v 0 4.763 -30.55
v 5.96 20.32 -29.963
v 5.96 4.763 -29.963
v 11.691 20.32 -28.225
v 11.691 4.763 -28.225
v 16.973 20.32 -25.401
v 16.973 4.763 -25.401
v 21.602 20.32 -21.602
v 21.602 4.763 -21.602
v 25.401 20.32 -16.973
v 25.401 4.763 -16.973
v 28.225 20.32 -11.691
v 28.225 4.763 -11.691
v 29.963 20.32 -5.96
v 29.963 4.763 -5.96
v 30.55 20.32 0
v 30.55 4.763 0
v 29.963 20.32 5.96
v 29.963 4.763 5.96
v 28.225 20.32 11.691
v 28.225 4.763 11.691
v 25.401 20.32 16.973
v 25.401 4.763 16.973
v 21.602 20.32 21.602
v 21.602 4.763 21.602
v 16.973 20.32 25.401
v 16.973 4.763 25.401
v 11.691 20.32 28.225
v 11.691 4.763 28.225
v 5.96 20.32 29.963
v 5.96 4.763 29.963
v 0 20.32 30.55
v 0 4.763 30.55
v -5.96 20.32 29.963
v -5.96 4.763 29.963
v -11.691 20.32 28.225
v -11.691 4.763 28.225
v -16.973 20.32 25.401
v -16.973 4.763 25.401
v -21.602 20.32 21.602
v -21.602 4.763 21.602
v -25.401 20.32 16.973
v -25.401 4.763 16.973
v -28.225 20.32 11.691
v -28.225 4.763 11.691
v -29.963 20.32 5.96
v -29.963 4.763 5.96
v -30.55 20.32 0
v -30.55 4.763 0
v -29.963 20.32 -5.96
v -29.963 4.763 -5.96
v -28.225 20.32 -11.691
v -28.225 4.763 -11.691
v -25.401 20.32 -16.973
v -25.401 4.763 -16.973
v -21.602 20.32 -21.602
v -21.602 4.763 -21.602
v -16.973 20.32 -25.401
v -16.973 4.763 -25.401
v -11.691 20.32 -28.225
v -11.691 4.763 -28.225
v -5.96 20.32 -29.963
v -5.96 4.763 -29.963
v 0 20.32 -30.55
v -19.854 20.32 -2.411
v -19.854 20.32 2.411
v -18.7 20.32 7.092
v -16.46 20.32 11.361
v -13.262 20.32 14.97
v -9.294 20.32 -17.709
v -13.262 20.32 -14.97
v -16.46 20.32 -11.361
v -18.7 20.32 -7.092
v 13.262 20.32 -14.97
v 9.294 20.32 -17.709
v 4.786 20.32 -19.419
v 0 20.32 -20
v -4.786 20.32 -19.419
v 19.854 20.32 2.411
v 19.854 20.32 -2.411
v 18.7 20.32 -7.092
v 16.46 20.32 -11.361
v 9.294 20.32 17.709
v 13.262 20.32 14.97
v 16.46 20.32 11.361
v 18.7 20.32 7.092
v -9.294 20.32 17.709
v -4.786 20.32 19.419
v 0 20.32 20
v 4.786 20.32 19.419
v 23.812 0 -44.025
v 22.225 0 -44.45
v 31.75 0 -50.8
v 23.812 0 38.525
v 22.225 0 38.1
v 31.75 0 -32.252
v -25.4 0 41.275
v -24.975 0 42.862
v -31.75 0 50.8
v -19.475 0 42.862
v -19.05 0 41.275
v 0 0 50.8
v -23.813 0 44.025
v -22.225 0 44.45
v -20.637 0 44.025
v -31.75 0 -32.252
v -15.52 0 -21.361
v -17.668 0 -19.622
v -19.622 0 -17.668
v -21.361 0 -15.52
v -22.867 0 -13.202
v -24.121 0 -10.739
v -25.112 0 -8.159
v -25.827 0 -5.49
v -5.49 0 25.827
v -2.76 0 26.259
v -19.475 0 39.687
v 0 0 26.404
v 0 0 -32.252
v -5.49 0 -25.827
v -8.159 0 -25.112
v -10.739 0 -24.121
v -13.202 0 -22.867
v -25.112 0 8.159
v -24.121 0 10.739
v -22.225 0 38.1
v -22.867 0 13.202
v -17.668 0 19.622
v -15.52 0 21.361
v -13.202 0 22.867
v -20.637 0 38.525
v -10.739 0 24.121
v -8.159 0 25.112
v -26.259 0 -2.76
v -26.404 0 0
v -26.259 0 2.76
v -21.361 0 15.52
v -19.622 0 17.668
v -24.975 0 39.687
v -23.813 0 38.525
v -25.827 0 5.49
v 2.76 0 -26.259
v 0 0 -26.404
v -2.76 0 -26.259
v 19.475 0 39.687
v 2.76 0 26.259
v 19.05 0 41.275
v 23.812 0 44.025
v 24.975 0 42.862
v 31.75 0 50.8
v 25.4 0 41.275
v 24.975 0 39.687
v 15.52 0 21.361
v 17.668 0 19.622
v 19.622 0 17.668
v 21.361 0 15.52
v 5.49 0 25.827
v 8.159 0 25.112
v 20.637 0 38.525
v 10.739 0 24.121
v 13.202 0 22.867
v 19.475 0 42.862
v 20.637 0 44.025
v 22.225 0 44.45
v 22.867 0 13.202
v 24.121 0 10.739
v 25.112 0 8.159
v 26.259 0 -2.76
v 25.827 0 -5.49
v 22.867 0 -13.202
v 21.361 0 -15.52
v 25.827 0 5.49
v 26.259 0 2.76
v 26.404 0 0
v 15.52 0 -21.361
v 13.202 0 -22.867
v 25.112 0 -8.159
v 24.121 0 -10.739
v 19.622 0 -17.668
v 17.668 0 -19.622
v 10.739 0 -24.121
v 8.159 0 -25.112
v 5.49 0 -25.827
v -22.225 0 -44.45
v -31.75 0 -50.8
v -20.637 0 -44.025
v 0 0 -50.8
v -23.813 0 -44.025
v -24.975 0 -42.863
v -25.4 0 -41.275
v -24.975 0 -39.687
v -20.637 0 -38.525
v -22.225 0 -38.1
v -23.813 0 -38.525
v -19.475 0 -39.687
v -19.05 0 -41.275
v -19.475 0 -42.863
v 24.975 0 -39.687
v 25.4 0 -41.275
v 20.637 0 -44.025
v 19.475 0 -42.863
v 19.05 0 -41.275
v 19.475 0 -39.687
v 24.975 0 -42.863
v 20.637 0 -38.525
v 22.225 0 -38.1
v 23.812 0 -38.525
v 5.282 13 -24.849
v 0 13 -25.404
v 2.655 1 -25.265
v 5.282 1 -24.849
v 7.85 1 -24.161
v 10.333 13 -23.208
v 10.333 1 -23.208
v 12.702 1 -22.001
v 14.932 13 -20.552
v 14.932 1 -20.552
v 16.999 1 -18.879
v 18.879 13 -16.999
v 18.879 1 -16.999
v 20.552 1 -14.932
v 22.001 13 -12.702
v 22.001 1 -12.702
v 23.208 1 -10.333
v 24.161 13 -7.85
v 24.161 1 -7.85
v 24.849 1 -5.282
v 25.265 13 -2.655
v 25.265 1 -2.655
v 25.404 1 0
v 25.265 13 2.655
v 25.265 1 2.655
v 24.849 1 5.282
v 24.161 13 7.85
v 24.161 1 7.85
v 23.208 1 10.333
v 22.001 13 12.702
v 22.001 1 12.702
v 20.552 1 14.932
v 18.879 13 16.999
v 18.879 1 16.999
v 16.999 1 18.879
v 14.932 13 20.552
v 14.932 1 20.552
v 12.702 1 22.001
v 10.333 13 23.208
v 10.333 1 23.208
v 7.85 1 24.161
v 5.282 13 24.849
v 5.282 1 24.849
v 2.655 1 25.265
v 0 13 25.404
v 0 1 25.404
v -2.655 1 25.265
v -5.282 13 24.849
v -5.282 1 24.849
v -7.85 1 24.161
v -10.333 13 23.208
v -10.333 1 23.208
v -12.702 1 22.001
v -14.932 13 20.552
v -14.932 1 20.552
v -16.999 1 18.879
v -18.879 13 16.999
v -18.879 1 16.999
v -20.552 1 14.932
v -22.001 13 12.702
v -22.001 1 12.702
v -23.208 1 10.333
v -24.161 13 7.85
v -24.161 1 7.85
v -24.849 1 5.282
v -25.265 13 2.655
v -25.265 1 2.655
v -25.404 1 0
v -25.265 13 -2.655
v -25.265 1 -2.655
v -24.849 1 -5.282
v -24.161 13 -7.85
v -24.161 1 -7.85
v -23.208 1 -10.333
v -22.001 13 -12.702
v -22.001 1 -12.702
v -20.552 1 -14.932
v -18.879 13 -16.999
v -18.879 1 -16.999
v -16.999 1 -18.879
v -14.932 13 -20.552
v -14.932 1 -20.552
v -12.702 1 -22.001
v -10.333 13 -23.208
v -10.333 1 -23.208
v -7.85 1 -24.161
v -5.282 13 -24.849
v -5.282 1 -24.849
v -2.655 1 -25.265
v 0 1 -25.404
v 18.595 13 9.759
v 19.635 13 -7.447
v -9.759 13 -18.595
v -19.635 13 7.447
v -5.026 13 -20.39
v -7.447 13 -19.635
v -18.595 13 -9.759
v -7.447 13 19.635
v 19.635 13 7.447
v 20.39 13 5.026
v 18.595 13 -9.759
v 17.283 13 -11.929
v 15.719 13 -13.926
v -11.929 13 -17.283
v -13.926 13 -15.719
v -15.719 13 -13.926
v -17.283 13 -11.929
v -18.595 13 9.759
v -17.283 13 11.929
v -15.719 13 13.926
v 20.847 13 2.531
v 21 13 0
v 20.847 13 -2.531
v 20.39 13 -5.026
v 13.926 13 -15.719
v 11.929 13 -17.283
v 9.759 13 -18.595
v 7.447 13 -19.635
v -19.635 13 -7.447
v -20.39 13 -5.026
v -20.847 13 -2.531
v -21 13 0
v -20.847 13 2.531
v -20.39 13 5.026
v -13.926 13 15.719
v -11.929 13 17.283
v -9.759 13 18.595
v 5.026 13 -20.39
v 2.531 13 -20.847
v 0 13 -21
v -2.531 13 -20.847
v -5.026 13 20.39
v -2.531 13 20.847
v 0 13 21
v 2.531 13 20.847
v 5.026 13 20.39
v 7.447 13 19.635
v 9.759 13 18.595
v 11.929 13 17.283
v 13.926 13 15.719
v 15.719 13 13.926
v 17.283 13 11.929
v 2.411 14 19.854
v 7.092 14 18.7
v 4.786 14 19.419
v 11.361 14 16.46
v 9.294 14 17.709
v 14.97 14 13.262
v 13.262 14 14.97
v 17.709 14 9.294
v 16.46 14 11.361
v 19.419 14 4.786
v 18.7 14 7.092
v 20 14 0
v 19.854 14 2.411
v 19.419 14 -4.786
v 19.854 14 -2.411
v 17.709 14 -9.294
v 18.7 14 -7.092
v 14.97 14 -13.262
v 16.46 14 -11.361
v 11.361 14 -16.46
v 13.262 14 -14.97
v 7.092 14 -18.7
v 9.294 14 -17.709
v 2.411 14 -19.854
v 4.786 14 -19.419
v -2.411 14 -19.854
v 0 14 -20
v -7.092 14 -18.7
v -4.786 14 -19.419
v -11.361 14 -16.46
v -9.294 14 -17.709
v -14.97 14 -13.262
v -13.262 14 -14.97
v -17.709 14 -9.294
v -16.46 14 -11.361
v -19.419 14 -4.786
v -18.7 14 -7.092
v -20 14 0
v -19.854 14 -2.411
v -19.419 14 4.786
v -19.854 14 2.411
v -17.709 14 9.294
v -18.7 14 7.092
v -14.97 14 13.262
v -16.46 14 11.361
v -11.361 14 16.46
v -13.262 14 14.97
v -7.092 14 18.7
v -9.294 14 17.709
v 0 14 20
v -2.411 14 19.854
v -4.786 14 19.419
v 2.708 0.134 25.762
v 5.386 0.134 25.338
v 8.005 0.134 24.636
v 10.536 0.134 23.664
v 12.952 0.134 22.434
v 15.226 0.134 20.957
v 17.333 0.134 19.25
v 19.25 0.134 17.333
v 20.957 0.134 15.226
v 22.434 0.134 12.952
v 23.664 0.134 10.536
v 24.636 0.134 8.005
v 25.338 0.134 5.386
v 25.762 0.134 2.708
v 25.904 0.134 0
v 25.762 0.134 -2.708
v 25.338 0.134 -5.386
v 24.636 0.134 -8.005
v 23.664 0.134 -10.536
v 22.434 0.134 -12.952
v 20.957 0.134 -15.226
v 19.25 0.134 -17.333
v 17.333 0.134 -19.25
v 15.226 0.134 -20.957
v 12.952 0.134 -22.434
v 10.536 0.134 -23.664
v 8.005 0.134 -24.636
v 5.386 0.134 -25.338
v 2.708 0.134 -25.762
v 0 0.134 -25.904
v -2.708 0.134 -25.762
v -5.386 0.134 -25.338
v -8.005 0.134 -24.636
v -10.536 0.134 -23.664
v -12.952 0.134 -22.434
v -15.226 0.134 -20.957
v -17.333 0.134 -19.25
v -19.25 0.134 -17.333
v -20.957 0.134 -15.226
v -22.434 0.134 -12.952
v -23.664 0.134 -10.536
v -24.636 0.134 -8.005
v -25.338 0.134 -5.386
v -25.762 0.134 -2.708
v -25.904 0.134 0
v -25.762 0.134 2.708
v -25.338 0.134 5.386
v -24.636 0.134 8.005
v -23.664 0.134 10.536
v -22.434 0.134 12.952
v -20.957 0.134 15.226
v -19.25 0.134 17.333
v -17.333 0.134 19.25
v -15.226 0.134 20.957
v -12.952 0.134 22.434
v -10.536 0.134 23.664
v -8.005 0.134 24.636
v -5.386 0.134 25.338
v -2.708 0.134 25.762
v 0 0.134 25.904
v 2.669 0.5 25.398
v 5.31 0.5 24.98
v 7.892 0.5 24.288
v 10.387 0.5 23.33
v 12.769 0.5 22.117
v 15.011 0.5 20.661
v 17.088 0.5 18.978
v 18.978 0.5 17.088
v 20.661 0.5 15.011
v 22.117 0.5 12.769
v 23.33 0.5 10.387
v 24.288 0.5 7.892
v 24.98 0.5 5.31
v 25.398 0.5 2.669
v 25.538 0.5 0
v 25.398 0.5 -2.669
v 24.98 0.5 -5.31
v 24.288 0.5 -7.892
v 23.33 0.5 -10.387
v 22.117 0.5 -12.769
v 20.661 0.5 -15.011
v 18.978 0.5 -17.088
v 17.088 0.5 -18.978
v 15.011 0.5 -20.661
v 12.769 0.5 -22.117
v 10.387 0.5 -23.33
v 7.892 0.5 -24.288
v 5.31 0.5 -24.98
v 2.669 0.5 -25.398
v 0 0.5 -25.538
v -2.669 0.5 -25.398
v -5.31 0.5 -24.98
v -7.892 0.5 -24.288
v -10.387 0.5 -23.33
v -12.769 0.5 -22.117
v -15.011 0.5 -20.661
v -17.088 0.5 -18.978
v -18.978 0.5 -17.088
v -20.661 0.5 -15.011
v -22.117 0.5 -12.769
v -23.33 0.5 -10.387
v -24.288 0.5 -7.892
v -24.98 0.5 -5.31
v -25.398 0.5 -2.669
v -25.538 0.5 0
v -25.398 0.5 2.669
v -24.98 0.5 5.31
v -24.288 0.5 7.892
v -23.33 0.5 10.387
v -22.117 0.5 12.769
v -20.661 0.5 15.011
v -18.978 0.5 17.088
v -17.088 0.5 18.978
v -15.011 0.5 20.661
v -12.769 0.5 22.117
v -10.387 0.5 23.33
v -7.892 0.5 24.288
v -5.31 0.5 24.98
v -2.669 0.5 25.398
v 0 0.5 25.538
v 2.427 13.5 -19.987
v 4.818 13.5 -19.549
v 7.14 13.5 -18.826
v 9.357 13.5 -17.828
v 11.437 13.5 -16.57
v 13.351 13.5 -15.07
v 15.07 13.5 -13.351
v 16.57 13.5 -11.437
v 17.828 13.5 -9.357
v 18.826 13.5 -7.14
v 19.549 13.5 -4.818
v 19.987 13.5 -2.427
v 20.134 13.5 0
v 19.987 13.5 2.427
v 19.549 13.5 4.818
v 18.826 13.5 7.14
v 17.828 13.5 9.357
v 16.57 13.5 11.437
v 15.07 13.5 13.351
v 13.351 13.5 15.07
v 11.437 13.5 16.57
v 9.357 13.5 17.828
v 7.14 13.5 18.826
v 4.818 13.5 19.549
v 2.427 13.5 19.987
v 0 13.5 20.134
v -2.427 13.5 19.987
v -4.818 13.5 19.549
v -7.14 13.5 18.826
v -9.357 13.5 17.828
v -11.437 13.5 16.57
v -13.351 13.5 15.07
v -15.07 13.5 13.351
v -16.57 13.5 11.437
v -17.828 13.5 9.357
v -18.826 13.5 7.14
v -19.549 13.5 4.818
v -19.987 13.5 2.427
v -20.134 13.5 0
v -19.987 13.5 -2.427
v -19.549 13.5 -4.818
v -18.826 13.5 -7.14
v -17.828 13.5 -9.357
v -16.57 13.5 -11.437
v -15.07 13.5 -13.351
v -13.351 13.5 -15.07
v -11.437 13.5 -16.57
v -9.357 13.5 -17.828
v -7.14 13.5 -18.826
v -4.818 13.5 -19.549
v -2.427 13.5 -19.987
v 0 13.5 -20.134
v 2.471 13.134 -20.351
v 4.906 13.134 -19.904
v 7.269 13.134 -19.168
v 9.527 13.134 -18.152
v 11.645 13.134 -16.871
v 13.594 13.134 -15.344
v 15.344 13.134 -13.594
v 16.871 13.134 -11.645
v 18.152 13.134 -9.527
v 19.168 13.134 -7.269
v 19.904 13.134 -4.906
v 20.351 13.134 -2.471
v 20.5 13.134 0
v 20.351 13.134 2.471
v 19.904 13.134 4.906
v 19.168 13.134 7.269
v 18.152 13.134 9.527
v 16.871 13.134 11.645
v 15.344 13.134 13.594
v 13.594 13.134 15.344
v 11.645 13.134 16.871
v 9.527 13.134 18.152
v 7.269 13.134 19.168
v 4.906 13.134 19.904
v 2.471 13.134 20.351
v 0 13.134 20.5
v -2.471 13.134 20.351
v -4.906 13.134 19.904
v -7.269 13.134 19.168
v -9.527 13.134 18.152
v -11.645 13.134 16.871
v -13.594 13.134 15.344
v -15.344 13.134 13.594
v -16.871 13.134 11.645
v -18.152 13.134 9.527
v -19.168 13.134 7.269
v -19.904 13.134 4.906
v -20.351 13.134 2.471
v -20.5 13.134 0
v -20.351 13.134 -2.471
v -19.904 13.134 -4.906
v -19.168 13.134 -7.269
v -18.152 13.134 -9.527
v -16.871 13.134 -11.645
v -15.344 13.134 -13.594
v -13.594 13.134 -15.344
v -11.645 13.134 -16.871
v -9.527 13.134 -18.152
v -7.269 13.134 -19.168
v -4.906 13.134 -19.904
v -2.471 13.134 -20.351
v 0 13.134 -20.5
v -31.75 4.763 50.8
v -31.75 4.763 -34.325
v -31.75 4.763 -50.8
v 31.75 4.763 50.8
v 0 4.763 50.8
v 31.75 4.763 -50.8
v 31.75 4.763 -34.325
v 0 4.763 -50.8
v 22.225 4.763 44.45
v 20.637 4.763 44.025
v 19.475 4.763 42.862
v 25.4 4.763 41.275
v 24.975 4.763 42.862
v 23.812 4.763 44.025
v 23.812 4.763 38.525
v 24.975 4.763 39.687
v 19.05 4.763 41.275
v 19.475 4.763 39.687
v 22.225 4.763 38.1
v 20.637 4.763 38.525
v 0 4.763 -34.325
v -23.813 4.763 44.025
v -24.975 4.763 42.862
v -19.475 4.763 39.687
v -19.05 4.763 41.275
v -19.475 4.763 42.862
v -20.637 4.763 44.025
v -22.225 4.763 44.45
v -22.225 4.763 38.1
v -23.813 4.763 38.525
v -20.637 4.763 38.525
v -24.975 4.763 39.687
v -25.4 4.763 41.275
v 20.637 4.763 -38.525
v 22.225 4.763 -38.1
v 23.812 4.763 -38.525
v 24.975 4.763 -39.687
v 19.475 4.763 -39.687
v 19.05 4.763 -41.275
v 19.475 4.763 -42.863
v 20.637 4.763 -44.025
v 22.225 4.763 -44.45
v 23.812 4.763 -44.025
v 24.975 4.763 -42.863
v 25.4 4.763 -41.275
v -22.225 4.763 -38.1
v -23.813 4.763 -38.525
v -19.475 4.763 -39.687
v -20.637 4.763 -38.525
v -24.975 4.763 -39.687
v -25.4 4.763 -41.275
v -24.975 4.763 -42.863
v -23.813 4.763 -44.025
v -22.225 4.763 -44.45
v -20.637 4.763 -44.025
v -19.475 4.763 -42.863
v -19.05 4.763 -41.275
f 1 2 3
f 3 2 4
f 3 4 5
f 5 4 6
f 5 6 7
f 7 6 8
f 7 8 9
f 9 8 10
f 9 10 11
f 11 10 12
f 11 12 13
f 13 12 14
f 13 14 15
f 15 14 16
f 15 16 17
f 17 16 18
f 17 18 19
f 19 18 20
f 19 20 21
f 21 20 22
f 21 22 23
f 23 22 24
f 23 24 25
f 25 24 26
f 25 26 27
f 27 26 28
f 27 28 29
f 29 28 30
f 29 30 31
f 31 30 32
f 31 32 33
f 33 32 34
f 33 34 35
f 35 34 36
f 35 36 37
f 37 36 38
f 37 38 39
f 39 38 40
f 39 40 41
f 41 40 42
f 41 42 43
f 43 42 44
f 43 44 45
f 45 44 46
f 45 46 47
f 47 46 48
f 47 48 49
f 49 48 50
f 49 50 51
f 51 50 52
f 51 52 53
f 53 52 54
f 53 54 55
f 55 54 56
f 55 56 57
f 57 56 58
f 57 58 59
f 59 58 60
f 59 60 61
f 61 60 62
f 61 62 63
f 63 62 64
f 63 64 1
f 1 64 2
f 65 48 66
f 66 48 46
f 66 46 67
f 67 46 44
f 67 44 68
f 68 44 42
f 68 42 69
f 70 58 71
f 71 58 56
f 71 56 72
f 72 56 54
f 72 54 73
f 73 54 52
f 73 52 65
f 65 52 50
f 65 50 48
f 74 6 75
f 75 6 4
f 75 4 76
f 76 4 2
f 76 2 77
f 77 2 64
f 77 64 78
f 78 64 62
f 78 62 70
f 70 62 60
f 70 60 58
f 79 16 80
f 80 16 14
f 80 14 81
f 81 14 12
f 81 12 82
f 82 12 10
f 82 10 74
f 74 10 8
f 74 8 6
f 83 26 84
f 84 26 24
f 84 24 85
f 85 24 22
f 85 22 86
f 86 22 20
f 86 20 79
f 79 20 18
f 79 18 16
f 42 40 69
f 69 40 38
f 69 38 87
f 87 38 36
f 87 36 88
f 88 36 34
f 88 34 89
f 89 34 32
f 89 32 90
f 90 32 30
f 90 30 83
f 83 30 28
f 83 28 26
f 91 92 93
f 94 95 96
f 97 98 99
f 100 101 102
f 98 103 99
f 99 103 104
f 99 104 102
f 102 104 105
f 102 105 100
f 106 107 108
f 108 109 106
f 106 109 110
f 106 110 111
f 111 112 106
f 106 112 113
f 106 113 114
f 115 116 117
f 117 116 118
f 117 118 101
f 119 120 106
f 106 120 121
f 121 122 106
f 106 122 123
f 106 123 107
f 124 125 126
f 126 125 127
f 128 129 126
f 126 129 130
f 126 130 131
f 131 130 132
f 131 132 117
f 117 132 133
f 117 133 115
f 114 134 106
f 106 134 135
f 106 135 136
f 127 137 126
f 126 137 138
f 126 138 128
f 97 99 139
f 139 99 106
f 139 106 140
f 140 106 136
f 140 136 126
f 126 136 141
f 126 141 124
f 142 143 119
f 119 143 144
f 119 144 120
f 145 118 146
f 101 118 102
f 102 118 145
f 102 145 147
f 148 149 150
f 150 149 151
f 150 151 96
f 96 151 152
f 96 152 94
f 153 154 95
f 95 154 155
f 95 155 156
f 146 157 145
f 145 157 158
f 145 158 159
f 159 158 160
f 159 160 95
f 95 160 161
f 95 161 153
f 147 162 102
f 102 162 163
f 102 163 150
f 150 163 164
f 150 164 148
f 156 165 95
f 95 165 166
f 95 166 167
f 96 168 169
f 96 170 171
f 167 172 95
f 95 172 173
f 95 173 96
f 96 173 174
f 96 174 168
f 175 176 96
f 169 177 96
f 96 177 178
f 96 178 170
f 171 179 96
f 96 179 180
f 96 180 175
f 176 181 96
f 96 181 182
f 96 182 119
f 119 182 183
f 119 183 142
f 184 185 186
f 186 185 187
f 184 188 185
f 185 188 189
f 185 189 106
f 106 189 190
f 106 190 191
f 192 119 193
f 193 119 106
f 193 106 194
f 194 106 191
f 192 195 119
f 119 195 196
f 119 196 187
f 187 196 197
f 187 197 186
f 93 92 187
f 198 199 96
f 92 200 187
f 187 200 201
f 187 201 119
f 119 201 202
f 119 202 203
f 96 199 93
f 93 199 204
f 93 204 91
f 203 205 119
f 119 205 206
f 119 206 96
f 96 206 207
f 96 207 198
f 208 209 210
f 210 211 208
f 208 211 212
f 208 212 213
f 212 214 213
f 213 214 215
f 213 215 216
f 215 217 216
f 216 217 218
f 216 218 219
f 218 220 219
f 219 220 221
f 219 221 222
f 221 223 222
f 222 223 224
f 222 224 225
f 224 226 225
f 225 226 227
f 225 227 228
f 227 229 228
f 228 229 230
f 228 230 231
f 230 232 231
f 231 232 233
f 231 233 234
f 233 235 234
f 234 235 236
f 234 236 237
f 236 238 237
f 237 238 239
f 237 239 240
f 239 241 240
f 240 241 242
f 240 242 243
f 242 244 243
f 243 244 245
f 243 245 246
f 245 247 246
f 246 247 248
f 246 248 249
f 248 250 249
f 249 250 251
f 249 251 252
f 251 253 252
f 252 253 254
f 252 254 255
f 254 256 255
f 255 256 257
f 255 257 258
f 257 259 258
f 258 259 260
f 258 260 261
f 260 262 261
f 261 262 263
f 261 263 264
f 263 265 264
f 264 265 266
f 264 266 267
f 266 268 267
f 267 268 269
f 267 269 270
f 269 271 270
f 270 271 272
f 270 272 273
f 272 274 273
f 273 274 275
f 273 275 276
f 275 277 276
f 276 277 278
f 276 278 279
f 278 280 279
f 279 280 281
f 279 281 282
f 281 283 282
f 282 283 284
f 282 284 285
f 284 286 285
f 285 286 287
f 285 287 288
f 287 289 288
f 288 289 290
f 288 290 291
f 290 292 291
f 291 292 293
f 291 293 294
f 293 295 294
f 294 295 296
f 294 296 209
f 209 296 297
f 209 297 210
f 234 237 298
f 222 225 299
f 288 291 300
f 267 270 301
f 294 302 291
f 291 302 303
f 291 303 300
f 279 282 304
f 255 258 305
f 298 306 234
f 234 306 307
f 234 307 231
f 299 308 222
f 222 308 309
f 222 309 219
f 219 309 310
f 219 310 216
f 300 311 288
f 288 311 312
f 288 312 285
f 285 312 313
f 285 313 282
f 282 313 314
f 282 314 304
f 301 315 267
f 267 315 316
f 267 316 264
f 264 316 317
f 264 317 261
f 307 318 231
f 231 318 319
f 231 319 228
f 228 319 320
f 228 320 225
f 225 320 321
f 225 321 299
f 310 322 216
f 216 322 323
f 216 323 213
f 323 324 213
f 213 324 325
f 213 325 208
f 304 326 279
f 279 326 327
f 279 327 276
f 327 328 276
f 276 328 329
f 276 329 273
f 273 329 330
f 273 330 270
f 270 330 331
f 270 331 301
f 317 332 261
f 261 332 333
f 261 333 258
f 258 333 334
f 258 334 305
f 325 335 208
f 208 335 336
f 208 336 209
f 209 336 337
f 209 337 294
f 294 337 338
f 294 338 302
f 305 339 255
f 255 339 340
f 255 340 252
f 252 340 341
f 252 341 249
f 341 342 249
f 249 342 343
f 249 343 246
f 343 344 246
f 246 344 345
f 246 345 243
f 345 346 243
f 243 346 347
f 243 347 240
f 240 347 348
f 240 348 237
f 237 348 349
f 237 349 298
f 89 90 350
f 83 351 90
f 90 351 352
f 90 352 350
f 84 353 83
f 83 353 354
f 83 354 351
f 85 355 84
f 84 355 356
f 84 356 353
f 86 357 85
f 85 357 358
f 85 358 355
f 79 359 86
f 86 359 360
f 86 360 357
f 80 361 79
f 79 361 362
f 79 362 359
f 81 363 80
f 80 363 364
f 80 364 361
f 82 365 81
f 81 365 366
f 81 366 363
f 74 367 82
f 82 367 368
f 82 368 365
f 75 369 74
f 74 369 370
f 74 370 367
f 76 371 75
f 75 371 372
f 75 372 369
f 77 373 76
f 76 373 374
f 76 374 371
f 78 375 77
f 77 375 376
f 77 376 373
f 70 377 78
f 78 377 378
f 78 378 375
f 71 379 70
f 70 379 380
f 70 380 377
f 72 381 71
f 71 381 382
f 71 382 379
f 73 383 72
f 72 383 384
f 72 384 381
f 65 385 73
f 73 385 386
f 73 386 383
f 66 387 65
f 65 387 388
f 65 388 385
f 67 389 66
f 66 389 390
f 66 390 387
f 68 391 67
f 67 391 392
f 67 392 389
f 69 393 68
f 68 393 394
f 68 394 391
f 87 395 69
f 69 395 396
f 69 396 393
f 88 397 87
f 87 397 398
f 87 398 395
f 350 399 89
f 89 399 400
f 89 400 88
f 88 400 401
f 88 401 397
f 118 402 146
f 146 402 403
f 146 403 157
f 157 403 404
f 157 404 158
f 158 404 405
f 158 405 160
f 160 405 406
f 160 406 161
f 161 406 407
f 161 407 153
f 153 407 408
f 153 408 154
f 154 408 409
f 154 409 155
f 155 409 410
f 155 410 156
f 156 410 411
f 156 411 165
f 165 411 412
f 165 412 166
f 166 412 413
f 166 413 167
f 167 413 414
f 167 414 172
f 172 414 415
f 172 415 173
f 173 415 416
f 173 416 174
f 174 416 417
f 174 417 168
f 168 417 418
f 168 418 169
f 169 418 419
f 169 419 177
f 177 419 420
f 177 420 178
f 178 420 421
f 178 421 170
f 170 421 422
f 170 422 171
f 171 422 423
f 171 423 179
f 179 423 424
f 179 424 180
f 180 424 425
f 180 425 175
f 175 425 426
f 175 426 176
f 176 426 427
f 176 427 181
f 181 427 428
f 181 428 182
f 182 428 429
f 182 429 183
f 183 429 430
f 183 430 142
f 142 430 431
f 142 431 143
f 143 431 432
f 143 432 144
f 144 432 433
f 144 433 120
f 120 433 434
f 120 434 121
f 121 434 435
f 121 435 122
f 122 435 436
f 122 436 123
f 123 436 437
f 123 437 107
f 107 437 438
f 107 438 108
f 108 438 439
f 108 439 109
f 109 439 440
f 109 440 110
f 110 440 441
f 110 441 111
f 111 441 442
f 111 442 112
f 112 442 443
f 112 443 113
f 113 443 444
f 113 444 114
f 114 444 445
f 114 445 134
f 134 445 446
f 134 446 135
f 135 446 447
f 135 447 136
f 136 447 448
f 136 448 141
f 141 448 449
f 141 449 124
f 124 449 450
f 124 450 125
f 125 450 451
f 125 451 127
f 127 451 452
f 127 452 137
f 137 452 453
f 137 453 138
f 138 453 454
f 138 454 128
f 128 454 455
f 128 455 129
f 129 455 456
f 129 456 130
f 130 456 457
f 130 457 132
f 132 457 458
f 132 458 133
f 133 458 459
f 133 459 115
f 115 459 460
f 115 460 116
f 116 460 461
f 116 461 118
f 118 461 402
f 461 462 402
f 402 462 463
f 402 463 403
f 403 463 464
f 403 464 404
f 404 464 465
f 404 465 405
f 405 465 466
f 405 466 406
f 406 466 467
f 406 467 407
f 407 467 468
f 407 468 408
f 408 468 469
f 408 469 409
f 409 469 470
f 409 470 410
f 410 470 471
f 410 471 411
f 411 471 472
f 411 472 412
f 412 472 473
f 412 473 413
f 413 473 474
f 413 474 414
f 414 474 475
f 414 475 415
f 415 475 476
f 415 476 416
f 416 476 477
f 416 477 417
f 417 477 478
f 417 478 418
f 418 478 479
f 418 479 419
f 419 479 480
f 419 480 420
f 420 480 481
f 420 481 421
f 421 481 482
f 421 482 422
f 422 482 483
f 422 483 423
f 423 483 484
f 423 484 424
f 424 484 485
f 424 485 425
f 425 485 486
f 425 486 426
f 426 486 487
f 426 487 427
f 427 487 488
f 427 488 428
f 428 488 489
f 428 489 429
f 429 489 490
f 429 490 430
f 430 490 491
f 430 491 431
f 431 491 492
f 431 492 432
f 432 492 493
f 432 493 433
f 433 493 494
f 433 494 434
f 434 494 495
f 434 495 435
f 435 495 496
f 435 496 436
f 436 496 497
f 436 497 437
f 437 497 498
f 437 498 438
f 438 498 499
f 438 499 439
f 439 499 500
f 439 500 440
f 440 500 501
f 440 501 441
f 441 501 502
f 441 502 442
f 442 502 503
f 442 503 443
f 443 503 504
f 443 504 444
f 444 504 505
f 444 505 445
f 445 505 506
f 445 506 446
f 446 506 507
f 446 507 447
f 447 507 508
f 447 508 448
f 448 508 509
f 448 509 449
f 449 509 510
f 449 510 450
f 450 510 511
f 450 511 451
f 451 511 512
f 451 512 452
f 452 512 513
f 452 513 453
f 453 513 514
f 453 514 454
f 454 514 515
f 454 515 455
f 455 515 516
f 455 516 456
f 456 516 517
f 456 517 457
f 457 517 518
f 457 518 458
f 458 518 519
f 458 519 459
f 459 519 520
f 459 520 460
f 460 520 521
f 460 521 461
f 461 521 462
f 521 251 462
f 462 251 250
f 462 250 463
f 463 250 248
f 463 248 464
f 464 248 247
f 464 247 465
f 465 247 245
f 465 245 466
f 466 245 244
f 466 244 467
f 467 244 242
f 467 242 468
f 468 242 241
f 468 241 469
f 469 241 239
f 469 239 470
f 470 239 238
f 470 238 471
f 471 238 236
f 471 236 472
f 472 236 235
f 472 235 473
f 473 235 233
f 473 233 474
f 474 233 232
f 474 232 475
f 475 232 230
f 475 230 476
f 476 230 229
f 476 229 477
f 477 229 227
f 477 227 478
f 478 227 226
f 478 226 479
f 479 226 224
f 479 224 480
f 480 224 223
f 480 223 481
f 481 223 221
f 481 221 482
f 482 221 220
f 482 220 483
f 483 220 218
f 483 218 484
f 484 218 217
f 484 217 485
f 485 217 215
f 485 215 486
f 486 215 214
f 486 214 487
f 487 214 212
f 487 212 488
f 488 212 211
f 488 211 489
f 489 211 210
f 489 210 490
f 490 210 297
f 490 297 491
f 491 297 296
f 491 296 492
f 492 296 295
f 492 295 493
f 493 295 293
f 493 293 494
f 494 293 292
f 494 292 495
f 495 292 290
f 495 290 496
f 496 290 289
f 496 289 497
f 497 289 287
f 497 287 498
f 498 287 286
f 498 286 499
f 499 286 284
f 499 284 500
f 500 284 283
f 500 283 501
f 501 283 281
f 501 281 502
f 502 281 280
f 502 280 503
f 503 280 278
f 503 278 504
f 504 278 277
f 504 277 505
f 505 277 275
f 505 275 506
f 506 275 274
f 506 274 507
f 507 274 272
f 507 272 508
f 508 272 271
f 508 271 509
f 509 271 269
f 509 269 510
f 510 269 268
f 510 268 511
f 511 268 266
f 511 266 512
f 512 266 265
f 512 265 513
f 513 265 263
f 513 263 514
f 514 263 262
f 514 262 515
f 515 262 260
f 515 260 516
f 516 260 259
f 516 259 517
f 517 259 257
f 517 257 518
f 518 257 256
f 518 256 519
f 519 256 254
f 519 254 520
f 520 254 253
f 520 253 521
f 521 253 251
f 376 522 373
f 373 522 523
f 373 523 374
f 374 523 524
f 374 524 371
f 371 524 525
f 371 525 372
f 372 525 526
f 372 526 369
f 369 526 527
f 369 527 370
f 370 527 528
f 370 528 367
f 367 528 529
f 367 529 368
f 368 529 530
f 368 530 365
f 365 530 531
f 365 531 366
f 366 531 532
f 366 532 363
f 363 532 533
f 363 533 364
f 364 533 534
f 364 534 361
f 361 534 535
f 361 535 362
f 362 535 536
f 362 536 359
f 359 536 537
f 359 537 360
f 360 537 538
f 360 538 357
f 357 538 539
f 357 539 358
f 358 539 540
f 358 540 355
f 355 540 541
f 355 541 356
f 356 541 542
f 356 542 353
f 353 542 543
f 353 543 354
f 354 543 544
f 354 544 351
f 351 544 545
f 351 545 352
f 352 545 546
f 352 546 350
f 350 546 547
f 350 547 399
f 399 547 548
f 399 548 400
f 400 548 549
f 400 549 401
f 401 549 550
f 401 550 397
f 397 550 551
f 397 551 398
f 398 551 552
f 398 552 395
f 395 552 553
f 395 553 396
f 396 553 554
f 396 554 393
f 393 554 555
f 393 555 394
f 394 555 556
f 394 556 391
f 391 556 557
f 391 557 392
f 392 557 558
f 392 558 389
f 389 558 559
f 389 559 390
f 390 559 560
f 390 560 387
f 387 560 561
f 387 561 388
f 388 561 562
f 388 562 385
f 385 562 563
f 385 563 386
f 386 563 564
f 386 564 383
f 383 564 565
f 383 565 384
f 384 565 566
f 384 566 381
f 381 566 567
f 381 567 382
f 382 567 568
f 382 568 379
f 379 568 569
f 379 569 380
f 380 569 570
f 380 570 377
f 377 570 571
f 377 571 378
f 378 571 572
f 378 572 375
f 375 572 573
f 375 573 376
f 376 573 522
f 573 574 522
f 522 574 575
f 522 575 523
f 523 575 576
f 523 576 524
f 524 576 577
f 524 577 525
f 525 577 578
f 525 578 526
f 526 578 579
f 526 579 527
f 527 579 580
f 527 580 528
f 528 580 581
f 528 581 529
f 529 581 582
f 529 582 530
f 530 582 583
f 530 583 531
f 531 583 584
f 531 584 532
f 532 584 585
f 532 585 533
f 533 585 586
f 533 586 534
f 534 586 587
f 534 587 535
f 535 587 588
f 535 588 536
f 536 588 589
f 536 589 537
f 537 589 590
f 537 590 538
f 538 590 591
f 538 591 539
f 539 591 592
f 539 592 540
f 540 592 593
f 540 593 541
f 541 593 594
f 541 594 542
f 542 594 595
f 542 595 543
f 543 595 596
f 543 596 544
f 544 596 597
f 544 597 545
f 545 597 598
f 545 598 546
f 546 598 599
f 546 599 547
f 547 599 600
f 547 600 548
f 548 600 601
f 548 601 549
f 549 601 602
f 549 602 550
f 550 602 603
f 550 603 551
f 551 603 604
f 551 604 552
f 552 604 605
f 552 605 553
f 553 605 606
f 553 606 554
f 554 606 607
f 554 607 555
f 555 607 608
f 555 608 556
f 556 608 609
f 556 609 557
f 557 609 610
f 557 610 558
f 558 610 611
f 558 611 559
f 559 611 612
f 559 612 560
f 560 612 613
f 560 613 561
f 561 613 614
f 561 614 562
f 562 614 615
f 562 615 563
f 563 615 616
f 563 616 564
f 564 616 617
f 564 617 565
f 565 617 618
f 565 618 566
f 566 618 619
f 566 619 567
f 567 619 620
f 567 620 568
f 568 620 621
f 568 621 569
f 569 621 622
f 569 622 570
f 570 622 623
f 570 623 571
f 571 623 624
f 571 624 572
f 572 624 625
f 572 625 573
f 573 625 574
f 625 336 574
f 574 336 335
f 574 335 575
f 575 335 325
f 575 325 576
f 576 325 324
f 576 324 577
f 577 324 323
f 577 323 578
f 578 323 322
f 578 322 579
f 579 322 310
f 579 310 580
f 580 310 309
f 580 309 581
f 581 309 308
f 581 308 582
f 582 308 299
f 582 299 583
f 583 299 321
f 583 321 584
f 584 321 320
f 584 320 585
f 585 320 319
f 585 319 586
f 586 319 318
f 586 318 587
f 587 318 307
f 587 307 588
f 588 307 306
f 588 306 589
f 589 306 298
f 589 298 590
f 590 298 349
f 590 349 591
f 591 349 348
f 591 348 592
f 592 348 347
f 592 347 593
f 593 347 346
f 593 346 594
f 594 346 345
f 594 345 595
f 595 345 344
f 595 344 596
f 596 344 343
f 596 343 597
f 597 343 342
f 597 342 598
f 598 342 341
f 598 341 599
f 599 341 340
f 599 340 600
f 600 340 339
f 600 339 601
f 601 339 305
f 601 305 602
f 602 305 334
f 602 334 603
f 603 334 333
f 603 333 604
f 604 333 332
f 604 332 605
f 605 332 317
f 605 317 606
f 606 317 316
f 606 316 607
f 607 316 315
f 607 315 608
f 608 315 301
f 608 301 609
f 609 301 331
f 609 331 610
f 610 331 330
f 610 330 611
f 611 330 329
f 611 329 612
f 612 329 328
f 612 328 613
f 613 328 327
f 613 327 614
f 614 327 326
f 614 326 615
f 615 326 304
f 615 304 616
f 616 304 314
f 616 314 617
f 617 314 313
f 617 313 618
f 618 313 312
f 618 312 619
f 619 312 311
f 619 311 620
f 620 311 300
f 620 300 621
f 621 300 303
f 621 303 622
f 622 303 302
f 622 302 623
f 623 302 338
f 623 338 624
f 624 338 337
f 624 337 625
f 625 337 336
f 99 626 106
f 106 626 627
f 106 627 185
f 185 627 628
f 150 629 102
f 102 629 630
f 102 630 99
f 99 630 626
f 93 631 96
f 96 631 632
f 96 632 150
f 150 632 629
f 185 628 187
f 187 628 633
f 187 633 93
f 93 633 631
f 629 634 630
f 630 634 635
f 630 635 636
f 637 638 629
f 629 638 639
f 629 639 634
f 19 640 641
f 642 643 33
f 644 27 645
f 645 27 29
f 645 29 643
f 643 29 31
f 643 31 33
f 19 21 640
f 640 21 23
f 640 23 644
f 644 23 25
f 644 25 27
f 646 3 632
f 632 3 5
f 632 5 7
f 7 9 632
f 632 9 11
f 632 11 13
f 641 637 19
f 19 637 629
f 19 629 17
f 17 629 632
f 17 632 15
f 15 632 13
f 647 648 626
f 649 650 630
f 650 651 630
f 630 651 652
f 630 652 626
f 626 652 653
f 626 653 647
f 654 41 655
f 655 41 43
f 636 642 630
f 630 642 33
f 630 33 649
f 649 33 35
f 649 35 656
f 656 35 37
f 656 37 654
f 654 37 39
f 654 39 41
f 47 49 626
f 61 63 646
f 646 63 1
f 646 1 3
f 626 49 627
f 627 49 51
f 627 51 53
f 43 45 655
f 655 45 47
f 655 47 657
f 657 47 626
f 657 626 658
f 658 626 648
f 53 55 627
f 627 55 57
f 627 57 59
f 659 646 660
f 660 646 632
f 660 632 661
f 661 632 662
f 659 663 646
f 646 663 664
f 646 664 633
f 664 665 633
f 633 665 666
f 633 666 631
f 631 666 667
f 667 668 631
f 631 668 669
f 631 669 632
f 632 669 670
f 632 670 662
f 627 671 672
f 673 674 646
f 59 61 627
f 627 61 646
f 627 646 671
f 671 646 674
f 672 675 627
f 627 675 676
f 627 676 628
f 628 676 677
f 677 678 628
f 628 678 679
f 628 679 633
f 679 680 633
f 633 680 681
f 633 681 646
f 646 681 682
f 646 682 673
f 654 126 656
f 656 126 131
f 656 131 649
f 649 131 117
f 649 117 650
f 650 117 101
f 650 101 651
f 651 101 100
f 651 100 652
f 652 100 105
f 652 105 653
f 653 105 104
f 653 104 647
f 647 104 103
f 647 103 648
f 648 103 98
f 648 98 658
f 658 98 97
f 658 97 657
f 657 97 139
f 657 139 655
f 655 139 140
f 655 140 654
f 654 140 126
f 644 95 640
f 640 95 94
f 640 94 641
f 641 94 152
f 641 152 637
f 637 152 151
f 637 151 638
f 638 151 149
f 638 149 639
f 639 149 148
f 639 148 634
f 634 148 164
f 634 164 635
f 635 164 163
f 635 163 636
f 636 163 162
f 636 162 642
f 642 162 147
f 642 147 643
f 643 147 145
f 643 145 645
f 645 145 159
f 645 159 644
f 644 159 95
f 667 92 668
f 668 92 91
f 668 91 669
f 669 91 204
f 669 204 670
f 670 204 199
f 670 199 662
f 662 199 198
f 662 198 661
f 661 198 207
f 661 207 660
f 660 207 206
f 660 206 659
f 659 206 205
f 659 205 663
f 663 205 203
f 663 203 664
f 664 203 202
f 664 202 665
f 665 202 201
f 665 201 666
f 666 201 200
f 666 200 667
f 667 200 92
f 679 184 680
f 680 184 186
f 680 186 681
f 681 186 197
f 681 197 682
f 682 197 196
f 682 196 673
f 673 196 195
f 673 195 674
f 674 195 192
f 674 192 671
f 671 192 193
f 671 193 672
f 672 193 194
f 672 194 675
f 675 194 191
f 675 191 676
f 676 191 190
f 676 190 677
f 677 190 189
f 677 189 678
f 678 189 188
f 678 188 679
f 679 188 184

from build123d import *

# Parameters (mm, degrees)
SKETCH1_R           = 30.55
BOSS_EXTRUDE1_DEPTH = 20.32
SKETCH2_R           = 25.404
CUT_EXTRUDE1_DEPTH  = 13
SKETCH3_R           = 20
CUT_EXTRUDE2_DEPTH  = 21.32
FILLET1_R           = 1
FILLET2_R           = 1
SKETCH4_W           = 63.5
SKETCH4_H           = 101.6
SKETCH4_R           = 3.175
SKETCH4_R_2         = 26.404
BOSS_EXTRUDE2_DEPTH = 4.7625


with BuildPart() as part:
    # Sketch1 → Boss-Extrude1 (new body)
    with BuildSketch(Plane(origin=(0, 0, 0), x_dir=(1, 0, 0), z_dir=(0, 1, 0))):
        Circle(SKETCH1_R)
    extrude(amount=BOSS_EXTRUDE1_DEPTH)

    # Sketch2 → Cut-Extrude1 (cut)
    with BuildSketch(Plane.XZ):
        Circle(SKETCH2_R)
    extrude(amount=-CUT_EXTRUDE1_DEPTH, mode=Mode.SUBTRACT)

    # Sketch3 → Cut-Extrude2 (cut, through all)
    with BuildSketch(Plane(origin=(0, 20.32, 0), x_dir=(1, 0, 0), z_dir=(0, 1, 0))):
        Circle(SKETCH3_R)
    extrude(amount=-CUT_EXTRUDE2_DEPTH, mode=Mode.SUBTRACT)

    # Fillet1
    fillet1_edges = [part.edges().sort_by_distance(p)[0] for p in [
        (-25.404, 0, 0),
    ]]
    fillet(fillet1_edges, radius=FILLET1_R)

    # Fillet2
    fillet2_edges = [part.edges().sort_by_distance(p)[0] for p in [
        (-20, 13, 0),
    ]]
    fillet(fillet2_edges, radius=FILLET2_R)

    # Sketch4 → Boss-Extrude2 (add)
    with BuildSketch(Plane.XZ):
        Rectangle(SKETCH4_W, SKETCH4_H)
        with Locations((-22.225, 41.275)):
            Circle(SKETCH4_R, mode=Mode.SUBTRACT)
        with Locations((22.225, 41.275)):
            Circle(SKETCH4_R, mode=Mode.SUBTRACT)
        with Locations((22.225, -41.275)):
            Circle(SKETCH4_R, mode=Mode.SUBTRACT)
        with Locations((-22.225, -41.275)):
            Circle(SKETCH4_R, mode=Mode.SUBTRACT)
        Circle(SKETCH4_R_2, mode=Mode.SUBTRACT)
    extrude(amount=-BOSS_EXTRUDE2_DEPTH)


solid = part.part
